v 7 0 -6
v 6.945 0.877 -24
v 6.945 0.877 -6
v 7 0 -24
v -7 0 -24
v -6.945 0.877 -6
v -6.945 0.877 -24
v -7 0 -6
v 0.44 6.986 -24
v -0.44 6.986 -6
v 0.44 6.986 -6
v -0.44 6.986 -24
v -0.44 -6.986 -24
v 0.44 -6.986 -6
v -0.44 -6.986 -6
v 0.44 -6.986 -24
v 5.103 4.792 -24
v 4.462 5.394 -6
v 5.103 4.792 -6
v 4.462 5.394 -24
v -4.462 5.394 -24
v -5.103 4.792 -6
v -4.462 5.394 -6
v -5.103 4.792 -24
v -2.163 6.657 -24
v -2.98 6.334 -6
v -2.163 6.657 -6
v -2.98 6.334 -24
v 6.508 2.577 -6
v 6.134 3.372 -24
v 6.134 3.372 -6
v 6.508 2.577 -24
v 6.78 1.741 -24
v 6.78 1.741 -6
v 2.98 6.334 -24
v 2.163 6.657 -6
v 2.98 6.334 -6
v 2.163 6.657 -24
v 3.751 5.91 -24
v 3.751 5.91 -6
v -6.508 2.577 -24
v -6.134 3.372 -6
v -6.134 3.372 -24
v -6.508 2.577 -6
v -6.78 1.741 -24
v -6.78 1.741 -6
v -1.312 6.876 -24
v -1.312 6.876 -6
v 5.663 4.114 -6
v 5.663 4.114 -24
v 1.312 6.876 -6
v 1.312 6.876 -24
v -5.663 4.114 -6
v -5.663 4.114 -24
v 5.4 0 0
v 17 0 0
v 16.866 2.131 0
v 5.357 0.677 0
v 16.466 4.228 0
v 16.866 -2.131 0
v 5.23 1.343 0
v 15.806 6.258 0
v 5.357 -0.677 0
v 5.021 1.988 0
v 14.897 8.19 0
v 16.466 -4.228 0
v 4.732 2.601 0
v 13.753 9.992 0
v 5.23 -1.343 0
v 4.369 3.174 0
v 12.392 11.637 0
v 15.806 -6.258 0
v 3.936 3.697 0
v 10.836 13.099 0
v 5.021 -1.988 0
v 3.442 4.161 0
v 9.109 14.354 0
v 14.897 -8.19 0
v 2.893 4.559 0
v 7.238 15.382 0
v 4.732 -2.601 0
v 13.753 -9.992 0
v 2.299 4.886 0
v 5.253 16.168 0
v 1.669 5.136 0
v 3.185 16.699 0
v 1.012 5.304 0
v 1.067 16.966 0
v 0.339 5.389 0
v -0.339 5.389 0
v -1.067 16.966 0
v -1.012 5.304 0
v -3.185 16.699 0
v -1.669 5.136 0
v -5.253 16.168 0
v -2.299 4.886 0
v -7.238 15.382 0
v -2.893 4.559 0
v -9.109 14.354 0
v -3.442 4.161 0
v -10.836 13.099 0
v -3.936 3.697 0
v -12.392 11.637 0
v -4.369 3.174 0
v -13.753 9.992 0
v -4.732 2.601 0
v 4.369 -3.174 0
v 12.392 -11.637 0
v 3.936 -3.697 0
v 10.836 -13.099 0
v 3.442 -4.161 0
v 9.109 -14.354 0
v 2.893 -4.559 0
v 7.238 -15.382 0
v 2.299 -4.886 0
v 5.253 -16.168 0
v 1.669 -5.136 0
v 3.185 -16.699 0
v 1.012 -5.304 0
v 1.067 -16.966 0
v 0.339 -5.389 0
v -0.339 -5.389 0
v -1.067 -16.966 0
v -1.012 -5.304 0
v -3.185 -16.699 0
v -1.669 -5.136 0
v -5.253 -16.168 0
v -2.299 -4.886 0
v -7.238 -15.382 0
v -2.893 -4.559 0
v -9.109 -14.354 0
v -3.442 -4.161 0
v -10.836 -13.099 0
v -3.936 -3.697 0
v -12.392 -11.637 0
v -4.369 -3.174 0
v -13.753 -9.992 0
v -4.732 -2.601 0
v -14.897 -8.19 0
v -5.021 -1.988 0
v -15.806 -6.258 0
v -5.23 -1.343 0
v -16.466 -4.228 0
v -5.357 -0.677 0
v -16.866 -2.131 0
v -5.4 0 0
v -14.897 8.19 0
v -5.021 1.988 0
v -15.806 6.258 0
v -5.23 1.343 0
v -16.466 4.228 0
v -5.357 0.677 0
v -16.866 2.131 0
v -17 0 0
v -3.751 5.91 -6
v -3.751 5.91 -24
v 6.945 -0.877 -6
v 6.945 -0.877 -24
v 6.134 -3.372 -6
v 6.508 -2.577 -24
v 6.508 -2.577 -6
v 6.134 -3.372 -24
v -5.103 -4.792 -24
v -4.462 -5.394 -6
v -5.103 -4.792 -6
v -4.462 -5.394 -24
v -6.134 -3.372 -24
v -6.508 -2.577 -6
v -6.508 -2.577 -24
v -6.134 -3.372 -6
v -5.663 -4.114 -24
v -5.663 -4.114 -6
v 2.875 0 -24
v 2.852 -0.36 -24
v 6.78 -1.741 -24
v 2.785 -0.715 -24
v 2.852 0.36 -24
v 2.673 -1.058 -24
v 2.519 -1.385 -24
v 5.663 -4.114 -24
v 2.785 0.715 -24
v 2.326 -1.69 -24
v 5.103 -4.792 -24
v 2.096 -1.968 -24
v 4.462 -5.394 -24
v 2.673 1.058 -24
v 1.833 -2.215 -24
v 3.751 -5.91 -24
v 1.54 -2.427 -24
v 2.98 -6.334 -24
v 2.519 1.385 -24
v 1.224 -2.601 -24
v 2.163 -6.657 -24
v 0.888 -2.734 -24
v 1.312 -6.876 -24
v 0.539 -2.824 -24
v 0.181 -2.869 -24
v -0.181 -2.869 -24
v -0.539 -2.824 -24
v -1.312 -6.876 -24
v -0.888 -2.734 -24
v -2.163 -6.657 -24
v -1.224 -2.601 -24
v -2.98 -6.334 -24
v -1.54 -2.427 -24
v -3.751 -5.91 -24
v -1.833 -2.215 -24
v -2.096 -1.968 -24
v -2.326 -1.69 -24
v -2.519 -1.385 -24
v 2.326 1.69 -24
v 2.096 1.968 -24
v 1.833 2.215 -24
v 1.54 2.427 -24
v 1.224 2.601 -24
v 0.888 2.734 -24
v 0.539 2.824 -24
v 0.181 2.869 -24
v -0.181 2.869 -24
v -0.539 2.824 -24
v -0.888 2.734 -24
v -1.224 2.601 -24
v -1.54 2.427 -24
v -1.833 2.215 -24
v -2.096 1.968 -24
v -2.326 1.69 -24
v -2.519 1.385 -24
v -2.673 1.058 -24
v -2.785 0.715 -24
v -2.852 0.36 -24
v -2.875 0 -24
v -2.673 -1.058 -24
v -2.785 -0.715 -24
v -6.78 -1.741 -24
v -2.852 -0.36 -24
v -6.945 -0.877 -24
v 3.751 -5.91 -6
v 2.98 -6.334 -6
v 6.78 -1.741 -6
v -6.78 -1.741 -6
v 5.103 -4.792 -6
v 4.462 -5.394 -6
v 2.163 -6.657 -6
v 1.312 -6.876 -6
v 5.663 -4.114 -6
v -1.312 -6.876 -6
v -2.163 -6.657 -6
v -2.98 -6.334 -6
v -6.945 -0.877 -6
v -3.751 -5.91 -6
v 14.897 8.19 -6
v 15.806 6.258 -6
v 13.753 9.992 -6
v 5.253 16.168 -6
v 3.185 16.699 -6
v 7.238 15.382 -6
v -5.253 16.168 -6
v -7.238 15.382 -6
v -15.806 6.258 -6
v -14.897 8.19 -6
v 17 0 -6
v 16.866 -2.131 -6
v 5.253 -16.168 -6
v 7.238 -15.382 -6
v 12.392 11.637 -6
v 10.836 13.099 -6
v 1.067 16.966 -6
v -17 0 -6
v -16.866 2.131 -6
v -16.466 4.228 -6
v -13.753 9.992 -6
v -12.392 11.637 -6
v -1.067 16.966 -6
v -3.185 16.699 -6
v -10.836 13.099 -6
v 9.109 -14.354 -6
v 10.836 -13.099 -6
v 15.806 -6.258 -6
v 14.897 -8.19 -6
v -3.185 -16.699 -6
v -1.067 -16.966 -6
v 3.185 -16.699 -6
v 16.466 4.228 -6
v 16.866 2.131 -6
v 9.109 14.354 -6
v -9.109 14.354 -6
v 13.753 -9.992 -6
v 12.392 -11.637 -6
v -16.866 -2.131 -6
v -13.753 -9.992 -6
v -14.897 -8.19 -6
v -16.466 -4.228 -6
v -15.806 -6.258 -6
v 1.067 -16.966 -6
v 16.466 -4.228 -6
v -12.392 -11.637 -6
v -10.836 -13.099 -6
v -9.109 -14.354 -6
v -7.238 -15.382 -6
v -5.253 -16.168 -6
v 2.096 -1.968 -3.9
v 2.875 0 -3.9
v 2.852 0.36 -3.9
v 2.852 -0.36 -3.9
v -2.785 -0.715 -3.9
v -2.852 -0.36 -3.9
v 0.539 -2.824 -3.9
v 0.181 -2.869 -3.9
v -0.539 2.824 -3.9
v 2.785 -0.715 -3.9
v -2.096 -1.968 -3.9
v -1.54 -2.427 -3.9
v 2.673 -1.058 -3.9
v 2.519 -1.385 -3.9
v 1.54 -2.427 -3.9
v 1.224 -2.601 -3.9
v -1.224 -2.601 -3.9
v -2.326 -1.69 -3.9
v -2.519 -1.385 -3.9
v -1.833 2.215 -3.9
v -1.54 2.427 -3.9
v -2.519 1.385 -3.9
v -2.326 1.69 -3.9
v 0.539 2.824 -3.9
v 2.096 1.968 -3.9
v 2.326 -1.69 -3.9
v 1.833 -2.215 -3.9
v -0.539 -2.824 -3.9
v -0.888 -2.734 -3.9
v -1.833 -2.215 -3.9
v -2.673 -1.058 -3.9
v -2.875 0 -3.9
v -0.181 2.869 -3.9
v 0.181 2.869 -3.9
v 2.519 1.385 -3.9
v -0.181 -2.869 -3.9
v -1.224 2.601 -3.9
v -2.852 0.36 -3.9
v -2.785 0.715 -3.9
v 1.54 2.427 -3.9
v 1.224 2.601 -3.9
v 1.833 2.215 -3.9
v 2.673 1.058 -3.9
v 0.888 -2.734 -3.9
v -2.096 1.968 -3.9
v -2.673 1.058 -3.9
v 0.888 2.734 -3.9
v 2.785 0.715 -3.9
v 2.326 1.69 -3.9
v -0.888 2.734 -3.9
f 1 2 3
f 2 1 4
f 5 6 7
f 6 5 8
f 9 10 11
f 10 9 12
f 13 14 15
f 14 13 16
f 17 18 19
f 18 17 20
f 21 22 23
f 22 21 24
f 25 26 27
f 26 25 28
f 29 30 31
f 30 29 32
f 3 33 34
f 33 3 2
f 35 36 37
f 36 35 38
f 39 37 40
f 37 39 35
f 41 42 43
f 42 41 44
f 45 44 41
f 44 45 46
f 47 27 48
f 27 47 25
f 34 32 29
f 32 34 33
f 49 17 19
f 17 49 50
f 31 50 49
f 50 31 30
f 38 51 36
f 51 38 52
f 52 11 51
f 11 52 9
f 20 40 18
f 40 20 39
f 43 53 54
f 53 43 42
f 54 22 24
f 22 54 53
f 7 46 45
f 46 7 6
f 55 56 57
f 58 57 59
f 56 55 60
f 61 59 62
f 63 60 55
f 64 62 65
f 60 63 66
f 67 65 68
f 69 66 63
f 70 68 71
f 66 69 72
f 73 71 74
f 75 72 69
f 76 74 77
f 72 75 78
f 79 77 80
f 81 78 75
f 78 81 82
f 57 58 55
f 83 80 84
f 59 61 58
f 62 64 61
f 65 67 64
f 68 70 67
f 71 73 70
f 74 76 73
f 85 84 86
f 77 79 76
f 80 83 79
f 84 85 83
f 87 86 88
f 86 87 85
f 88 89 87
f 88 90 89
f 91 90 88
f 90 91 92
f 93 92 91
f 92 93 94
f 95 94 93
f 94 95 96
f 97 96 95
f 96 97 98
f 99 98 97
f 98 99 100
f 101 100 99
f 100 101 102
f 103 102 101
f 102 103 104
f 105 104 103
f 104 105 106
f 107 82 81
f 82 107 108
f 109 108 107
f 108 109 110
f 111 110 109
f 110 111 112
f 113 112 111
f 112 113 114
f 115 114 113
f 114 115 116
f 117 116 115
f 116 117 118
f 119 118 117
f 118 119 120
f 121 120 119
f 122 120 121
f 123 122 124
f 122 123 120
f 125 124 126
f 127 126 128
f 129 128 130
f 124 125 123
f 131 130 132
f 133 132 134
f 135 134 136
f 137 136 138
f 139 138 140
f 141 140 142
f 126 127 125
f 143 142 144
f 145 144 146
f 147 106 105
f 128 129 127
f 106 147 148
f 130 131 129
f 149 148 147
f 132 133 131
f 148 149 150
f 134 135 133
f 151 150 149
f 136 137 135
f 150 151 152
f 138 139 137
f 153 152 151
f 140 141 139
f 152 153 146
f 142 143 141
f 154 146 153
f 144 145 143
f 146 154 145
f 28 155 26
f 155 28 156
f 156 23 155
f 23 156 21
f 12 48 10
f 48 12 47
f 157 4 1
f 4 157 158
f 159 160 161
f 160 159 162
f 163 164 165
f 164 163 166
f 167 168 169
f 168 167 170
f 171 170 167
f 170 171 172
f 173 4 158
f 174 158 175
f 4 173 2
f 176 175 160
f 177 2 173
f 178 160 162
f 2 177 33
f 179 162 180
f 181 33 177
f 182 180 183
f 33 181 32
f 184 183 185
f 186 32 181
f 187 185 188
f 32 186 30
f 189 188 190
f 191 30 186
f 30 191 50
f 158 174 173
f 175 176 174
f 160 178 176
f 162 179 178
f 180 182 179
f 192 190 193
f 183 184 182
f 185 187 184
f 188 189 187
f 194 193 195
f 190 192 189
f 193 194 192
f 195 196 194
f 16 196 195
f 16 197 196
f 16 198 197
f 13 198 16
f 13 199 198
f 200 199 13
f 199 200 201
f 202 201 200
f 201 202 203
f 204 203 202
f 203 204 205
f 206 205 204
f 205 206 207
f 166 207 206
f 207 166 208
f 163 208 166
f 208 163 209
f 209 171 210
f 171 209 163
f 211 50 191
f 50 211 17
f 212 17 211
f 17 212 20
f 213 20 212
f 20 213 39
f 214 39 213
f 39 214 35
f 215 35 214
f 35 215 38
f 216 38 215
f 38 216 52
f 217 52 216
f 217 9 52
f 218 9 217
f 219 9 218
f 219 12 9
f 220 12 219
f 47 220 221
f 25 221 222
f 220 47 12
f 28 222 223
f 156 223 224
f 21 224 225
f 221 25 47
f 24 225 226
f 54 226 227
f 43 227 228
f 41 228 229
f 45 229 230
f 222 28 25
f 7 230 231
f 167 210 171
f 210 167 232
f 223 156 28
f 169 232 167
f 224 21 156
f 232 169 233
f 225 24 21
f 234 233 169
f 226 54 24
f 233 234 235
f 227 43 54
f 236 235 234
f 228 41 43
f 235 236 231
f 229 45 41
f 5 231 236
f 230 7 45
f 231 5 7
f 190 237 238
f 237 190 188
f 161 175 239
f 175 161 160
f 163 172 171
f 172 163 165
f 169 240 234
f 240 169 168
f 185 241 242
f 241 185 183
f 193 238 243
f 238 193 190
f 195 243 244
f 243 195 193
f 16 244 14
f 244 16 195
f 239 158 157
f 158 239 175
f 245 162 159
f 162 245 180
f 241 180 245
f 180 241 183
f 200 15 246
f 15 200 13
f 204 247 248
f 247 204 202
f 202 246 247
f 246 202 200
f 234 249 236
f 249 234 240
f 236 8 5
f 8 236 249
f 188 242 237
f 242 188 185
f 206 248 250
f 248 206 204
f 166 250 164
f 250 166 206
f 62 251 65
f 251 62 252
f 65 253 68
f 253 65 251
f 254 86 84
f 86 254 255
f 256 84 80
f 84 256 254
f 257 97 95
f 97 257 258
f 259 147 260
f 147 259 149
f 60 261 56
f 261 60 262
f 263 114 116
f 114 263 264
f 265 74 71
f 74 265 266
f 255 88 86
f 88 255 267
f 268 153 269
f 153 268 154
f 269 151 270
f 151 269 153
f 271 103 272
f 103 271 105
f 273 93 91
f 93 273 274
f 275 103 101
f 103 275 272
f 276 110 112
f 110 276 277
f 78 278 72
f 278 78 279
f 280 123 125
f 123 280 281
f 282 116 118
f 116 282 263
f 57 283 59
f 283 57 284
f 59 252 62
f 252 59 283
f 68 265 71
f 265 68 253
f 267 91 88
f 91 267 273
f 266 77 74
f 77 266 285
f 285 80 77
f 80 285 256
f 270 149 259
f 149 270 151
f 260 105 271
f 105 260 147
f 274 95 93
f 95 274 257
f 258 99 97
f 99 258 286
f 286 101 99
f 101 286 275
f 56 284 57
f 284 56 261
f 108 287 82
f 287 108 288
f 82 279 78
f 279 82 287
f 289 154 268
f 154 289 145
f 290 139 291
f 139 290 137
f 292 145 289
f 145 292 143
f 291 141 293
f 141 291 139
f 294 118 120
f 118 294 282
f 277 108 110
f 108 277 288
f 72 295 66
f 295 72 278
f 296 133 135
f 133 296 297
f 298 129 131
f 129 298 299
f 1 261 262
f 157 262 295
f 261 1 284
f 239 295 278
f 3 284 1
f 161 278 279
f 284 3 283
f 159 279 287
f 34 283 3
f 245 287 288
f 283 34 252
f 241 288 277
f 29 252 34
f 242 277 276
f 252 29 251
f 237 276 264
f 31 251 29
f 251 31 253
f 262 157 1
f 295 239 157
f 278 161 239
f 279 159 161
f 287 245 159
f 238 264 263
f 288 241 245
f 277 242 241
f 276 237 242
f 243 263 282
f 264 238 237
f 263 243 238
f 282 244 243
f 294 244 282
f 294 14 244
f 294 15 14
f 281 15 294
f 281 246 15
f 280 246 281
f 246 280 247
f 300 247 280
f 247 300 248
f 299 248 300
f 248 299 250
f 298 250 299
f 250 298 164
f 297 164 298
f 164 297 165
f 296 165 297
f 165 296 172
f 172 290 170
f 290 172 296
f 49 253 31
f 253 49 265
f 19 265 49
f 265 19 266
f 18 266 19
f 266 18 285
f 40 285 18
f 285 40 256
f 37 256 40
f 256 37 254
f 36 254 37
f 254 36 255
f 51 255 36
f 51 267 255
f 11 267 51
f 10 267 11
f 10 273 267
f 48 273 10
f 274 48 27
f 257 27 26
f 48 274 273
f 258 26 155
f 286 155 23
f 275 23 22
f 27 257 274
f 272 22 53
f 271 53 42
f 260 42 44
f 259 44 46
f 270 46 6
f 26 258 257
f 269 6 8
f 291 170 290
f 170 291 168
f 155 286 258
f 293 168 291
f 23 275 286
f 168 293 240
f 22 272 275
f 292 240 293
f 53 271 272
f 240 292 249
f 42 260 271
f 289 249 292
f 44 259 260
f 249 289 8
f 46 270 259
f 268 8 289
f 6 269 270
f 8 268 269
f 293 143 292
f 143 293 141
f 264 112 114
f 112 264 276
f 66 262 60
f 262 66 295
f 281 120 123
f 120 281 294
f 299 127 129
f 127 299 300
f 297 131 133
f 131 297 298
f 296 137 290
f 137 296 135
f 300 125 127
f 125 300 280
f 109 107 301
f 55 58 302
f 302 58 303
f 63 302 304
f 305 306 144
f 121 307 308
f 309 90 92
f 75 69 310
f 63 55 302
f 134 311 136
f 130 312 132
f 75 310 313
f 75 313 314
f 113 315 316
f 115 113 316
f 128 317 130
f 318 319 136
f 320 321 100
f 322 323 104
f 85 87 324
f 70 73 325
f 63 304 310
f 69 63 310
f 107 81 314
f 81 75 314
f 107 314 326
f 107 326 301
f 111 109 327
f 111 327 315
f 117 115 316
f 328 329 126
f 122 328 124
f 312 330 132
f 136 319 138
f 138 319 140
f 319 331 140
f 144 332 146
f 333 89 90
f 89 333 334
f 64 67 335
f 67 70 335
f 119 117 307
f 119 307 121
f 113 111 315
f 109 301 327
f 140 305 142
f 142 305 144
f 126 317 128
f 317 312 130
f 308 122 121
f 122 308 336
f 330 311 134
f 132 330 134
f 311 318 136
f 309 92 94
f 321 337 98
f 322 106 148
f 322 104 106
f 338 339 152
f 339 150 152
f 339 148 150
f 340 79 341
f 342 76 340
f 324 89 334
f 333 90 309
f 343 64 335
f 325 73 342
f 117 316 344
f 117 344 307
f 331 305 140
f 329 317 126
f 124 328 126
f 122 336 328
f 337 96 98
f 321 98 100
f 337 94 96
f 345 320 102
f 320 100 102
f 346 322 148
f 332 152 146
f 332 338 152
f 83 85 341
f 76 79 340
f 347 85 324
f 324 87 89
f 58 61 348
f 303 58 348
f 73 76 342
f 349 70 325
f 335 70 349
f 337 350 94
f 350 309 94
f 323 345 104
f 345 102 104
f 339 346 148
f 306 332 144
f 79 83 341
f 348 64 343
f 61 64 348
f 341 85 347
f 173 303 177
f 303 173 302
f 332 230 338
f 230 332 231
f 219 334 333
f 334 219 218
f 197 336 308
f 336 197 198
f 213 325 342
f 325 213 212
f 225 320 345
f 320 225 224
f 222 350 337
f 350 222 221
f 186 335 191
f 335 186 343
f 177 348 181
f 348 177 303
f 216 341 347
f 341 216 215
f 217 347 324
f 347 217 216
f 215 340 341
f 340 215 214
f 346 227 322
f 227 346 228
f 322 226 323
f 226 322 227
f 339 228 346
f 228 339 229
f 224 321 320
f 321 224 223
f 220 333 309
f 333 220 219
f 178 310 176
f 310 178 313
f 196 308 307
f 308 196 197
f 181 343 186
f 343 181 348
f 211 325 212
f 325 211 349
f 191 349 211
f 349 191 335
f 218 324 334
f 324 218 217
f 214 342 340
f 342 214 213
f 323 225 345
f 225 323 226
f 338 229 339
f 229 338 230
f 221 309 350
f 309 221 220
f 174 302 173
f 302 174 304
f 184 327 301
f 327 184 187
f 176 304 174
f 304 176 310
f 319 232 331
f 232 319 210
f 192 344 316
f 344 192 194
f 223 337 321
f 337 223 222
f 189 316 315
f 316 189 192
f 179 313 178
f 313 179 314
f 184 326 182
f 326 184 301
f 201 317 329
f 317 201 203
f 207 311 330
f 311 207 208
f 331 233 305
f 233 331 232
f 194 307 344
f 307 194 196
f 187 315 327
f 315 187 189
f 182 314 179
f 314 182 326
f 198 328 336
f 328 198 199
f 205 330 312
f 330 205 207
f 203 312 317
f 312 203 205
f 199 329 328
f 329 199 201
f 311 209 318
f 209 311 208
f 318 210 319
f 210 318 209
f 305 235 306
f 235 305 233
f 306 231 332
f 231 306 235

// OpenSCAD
$fn = 50;


difference() {
	union() {
		translate(v = [0, 0, -24.0000000000]) {
			cylinder(h = 24, r = 7.0000000000);
		}
		translate(v = [0, 0, -6.0000000000]) {
			cylinder(h = 6, r = 17.0000000000);
		}
	}
	union() {
		translate(v = [0, 0, 0]) {
			rotate(a = [0, 0, 0]) {
				difference() {
					union() {
						#translate(v = [0, 0, -24.0000000000]) {
							cylinder(h = 24, r = 2.6000000000);
						}
						#translate(v = [0, 0, -3.9000000000]) {
							cylinder(h = 3.9000000000, r = 7.0000000000, r1 = 2.8750000000, r2 = 5.4000000000);
						}
						#translate(v = [0, 0, -24.0000000000]) {
							cylinder(h = 24, r = 2.8750000000);
						}
						#translate(v = [0, 0, -24.0000000000]) {
							cylinder(h = 24, r = 2.6000000000);
						}
					}
					union();
				}
			}
		}
	}
}
